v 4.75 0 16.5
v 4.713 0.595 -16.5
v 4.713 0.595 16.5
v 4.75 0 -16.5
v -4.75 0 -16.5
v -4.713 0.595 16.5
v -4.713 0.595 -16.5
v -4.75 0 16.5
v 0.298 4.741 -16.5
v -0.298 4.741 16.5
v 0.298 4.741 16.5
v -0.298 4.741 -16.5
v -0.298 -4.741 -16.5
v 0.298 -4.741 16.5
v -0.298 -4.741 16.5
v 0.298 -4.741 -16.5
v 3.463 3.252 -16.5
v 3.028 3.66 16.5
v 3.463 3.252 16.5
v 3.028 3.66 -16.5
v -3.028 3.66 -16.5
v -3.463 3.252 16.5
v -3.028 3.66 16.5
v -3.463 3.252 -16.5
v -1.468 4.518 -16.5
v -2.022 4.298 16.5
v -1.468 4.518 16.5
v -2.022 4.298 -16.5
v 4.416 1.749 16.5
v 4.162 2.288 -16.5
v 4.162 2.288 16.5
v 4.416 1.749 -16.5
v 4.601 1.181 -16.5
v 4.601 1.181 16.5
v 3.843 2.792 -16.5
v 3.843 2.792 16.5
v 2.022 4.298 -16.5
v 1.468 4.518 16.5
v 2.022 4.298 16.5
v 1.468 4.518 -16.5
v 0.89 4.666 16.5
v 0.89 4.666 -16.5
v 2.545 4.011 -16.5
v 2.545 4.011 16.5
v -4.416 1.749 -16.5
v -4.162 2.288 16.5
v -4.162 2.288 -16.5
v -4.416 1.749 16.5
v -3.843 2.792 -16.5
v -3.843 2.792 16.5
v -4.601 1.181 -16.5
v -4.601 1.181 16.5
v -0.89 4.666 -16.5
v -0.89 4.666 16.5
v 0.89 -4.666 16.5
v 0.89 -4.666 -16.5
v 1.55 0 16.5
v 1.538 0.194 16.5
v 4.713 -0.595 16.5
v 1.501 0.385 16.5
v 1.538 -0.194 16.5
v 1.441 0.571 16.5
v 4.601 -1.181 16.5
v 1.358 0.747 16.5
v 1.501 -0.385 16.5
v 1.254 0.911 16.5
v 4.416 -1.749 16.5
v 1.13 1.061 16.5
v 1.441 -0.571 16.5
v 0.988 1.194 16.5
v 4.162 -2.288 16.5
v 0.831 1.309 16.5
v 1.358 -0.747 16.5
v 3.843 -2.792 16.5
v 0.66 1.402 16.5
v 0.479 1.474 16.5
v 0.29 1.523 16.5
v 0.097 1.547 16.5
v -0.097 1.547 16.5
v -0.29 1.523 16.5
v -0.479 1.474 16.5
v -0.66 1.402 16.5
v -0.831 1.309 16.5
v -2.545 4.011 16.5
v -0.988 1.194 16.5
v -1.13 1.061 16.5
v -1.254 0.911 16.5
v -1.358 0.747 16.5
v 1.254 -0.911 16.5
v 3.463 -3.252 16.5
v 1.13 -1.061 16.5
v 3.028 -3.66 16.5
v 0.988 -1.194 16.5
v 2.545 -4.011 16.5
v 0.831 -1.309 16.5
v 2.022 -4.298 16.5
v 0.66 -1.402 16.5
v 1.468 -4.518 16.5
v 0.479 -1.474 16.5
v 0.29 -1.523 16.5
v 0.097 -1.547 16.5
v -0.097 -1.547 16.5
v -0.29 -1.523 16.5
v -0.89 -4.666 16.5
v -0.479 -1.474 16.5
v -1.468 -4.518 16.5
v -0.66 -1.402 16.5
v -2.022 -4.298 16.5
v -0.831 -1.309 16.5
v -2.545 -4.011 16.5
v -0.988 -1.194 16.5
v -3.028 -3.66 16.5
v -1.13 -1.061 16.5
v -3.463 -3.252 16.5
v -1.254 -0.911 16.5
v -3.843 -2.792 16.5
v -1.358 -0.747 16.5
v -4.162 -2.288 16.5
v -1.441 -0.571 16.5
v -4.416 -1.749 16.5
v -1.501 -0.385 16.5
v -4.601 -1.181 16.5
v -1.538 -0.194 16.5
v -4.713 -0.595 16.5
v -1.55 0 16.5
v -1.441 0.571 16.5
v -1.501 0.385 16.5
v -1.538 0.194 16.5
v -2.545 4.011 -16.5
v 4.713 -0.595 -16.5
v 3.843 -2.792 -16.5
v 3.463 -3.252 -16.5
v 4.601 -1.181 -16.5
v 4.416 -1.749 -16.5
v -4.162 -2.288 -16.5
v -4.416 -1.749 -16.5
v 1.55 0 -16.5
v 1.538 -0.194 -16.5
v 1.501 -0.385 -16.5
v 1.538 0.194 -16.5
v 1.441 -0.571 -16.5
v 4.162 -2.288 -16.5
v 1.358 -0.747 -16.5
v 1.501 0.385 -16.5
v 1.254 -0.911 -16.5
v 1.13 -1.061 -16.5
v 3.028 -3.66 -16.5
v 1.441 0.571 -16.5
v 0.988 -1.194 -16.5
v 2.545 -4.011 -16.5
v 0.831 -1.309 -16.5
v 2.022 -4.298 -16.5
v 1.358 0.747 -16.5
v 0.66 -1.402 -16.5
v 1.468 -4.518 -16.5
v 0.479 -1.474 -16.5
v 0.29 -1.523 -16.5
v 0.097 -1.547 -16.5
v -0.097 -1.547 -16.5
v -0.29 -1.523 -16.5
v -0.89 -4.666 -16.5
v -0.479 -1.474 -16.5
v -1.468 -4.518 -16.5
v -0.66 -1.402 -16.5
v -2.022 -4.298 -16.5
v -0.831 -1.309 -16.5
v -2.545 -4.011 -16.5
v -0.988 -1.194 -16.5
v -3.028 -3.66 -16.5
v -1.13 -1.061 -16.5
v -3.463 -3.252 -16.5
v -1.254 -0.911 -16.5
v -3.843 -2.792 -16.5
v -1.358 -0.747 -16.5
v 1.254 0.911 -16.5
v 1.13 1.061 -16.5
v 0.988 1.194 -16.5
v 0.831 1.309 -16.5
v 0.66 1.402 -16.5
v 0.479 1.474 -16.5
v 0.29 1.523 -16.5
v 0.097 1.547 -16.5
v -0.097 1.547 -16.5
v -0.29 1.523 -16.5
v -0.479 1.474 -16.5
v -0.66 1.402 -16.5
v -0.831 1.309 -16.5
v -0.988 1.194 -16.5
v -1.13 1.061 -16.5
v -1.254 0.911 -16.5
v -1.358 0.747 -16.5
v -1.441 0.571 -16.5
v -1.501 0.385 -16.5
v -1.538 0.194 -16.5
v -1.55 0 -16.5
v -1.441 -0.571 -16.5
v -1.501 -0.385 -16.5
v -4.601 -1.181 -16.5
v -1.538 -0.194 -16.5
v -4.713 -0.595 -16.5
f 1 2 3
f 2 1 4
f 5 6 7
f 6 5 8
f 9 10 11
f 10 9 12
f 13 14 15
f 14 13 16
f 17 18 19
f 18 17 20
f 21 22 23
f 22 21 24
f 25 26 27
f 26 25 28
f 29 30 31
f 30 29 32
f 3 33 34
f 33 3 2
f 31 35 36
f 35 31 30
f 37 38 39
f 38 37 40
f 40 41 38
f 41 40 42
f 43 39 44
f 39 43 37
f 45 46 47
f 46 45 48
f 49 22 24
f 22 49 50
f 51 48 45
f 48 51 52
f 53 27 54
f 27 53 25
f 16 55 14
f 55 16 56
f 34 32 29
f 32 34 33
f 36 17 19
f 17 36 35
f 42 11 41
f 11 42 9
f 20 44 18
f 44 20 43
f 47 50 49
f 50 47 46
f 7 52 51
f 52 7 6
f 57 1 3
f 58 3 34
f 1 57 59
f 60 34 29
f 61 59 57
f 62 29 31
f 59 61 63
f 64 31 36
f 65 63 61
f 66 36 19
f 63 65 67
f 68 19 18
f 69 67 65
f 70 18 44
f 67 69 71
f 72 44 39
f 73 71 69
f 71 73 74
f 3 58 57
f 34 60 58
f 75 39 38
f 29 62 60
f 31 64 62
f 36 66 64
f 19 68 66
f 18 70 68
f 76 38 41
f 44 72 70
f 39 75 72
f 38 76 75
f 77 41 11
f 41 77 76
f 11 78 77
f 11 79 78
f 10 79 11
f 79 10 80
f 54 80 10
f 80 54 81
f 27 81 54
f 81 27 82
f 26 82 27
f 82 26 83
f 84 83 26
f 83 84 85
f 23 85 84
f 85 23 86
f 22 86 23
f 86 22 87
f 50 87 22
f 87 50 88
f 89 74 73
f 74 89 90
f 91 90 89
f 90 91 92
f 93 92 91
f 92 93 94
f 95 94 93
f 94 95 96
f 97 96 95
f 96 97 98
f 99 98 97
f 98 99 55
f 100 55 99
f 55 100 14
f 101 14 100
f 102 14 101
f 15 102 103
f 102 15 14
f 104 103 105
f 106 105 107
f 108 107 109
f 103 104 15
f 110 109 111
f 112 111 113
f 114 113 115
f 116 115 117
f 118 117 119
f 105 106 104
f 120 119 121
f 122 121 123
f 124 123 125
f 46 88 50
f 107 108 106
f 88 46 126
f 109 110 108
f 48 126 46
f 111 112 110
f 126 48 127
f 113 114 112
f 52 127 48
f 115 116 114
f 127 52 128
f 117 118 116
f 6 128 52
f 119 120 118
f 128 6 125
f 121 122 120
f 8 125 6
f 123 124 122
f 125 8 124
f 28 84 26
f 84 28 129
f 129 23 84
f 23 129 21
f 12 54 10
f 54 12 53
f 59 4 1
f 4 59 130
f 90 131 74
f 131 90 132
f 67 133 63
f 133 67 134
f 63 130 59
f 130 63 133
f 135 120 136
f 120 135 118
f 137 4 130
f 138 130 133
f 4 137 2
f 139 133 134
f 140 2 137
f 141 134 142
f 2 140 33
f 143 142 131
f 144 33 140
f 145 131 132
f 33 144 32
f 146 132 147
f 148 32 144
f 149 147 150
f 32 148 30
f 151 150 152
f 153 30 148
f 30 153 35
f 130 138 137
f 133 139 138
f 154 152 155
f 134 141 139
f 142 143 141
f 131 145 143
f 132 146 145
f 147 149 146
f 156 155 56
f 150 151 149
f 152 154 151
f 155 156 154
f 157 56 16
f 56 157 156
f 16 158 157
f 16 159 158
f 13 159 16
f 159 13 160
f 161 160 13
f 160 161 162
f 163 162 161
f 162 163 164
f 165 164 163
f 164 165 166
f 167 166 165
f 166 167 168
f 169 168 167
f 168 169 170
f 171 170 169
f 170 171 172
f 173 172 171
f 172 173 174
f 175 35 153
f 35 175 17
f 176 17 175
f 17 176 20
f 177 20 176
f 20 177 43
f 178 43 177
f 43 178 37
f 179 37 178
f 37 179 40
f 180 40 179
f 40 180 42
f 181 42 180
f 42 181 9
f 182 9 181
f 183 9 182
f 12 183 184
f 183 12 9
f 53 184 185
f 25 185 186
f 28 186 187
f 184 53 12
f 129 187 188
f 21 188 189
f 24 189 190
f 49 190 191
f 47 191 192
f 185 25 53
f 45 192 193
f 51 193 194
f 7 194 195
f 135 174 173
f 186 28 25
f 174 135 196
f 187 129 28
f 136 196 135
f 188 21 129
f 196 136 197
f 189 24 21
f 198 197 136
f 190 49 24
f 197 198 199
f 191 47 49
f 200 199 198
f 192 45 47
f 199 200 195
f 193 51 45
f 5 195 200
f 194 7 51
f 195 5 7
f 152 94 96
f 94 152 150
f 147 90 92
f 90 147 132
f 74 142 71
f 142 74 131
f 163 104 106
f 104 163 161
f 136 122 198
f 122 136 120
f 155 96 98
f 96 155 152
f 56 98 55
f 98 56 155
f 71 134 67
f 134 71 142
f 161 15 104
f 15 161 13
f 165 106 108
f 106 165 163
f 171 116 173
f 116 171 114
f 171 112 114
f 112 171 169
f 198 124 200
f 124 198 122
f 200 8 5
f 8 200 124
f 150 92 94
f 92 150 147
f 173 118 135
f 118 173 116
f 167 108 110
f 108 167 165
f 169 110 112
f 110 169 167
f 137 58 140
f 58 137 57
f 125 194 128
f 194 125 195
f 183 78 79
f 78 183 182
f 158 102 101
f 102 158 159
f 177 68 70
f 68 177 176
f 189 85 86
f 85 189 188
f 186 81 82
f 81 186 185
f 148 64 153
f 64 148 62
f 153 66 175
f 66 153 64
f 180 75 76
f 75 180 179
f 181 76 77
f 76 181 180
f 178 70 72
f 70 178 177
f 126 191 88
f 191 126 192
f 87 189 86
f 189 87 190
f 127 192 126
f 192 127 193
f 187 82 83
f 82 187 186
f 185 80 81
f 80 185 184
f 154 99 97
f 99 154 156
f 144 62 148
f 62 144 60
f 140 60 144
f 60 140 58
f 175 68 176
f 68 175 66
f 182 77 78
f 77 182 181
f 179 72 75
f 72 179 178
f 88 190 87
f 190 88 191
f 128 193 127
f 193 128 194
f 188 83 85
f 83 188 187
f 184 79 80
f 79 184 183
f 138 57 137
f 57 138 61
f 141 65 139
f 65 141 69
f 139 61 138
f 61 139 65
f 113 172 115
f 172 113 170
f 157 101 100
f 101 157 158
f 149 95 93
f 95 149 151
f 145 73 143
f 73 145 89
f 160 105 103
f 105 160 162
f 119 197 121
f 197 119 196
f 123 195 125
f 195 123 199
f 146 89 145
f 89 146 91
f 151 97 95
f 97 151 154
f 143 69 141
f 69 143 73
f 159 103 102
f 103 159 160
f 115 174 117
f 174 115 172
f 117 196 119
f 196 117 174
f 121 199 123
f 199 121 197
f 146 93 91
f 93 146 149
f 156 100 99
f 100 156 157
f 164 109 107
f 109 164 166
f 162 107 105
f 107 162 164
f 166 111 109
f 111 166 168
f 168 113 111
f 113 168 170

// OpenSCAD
$fn = 50;


difference() {
	union() {
		translate(v = [0, 0, -16.5000000000]) {
			cylinder(h = 33, r = 4.7500000000);
		}
	}
	union() {
		translate(v = [0, 0, -100.0000000000]) {
			cylinder(h = 200, r = 1.5500000000);
		}
	}
}
